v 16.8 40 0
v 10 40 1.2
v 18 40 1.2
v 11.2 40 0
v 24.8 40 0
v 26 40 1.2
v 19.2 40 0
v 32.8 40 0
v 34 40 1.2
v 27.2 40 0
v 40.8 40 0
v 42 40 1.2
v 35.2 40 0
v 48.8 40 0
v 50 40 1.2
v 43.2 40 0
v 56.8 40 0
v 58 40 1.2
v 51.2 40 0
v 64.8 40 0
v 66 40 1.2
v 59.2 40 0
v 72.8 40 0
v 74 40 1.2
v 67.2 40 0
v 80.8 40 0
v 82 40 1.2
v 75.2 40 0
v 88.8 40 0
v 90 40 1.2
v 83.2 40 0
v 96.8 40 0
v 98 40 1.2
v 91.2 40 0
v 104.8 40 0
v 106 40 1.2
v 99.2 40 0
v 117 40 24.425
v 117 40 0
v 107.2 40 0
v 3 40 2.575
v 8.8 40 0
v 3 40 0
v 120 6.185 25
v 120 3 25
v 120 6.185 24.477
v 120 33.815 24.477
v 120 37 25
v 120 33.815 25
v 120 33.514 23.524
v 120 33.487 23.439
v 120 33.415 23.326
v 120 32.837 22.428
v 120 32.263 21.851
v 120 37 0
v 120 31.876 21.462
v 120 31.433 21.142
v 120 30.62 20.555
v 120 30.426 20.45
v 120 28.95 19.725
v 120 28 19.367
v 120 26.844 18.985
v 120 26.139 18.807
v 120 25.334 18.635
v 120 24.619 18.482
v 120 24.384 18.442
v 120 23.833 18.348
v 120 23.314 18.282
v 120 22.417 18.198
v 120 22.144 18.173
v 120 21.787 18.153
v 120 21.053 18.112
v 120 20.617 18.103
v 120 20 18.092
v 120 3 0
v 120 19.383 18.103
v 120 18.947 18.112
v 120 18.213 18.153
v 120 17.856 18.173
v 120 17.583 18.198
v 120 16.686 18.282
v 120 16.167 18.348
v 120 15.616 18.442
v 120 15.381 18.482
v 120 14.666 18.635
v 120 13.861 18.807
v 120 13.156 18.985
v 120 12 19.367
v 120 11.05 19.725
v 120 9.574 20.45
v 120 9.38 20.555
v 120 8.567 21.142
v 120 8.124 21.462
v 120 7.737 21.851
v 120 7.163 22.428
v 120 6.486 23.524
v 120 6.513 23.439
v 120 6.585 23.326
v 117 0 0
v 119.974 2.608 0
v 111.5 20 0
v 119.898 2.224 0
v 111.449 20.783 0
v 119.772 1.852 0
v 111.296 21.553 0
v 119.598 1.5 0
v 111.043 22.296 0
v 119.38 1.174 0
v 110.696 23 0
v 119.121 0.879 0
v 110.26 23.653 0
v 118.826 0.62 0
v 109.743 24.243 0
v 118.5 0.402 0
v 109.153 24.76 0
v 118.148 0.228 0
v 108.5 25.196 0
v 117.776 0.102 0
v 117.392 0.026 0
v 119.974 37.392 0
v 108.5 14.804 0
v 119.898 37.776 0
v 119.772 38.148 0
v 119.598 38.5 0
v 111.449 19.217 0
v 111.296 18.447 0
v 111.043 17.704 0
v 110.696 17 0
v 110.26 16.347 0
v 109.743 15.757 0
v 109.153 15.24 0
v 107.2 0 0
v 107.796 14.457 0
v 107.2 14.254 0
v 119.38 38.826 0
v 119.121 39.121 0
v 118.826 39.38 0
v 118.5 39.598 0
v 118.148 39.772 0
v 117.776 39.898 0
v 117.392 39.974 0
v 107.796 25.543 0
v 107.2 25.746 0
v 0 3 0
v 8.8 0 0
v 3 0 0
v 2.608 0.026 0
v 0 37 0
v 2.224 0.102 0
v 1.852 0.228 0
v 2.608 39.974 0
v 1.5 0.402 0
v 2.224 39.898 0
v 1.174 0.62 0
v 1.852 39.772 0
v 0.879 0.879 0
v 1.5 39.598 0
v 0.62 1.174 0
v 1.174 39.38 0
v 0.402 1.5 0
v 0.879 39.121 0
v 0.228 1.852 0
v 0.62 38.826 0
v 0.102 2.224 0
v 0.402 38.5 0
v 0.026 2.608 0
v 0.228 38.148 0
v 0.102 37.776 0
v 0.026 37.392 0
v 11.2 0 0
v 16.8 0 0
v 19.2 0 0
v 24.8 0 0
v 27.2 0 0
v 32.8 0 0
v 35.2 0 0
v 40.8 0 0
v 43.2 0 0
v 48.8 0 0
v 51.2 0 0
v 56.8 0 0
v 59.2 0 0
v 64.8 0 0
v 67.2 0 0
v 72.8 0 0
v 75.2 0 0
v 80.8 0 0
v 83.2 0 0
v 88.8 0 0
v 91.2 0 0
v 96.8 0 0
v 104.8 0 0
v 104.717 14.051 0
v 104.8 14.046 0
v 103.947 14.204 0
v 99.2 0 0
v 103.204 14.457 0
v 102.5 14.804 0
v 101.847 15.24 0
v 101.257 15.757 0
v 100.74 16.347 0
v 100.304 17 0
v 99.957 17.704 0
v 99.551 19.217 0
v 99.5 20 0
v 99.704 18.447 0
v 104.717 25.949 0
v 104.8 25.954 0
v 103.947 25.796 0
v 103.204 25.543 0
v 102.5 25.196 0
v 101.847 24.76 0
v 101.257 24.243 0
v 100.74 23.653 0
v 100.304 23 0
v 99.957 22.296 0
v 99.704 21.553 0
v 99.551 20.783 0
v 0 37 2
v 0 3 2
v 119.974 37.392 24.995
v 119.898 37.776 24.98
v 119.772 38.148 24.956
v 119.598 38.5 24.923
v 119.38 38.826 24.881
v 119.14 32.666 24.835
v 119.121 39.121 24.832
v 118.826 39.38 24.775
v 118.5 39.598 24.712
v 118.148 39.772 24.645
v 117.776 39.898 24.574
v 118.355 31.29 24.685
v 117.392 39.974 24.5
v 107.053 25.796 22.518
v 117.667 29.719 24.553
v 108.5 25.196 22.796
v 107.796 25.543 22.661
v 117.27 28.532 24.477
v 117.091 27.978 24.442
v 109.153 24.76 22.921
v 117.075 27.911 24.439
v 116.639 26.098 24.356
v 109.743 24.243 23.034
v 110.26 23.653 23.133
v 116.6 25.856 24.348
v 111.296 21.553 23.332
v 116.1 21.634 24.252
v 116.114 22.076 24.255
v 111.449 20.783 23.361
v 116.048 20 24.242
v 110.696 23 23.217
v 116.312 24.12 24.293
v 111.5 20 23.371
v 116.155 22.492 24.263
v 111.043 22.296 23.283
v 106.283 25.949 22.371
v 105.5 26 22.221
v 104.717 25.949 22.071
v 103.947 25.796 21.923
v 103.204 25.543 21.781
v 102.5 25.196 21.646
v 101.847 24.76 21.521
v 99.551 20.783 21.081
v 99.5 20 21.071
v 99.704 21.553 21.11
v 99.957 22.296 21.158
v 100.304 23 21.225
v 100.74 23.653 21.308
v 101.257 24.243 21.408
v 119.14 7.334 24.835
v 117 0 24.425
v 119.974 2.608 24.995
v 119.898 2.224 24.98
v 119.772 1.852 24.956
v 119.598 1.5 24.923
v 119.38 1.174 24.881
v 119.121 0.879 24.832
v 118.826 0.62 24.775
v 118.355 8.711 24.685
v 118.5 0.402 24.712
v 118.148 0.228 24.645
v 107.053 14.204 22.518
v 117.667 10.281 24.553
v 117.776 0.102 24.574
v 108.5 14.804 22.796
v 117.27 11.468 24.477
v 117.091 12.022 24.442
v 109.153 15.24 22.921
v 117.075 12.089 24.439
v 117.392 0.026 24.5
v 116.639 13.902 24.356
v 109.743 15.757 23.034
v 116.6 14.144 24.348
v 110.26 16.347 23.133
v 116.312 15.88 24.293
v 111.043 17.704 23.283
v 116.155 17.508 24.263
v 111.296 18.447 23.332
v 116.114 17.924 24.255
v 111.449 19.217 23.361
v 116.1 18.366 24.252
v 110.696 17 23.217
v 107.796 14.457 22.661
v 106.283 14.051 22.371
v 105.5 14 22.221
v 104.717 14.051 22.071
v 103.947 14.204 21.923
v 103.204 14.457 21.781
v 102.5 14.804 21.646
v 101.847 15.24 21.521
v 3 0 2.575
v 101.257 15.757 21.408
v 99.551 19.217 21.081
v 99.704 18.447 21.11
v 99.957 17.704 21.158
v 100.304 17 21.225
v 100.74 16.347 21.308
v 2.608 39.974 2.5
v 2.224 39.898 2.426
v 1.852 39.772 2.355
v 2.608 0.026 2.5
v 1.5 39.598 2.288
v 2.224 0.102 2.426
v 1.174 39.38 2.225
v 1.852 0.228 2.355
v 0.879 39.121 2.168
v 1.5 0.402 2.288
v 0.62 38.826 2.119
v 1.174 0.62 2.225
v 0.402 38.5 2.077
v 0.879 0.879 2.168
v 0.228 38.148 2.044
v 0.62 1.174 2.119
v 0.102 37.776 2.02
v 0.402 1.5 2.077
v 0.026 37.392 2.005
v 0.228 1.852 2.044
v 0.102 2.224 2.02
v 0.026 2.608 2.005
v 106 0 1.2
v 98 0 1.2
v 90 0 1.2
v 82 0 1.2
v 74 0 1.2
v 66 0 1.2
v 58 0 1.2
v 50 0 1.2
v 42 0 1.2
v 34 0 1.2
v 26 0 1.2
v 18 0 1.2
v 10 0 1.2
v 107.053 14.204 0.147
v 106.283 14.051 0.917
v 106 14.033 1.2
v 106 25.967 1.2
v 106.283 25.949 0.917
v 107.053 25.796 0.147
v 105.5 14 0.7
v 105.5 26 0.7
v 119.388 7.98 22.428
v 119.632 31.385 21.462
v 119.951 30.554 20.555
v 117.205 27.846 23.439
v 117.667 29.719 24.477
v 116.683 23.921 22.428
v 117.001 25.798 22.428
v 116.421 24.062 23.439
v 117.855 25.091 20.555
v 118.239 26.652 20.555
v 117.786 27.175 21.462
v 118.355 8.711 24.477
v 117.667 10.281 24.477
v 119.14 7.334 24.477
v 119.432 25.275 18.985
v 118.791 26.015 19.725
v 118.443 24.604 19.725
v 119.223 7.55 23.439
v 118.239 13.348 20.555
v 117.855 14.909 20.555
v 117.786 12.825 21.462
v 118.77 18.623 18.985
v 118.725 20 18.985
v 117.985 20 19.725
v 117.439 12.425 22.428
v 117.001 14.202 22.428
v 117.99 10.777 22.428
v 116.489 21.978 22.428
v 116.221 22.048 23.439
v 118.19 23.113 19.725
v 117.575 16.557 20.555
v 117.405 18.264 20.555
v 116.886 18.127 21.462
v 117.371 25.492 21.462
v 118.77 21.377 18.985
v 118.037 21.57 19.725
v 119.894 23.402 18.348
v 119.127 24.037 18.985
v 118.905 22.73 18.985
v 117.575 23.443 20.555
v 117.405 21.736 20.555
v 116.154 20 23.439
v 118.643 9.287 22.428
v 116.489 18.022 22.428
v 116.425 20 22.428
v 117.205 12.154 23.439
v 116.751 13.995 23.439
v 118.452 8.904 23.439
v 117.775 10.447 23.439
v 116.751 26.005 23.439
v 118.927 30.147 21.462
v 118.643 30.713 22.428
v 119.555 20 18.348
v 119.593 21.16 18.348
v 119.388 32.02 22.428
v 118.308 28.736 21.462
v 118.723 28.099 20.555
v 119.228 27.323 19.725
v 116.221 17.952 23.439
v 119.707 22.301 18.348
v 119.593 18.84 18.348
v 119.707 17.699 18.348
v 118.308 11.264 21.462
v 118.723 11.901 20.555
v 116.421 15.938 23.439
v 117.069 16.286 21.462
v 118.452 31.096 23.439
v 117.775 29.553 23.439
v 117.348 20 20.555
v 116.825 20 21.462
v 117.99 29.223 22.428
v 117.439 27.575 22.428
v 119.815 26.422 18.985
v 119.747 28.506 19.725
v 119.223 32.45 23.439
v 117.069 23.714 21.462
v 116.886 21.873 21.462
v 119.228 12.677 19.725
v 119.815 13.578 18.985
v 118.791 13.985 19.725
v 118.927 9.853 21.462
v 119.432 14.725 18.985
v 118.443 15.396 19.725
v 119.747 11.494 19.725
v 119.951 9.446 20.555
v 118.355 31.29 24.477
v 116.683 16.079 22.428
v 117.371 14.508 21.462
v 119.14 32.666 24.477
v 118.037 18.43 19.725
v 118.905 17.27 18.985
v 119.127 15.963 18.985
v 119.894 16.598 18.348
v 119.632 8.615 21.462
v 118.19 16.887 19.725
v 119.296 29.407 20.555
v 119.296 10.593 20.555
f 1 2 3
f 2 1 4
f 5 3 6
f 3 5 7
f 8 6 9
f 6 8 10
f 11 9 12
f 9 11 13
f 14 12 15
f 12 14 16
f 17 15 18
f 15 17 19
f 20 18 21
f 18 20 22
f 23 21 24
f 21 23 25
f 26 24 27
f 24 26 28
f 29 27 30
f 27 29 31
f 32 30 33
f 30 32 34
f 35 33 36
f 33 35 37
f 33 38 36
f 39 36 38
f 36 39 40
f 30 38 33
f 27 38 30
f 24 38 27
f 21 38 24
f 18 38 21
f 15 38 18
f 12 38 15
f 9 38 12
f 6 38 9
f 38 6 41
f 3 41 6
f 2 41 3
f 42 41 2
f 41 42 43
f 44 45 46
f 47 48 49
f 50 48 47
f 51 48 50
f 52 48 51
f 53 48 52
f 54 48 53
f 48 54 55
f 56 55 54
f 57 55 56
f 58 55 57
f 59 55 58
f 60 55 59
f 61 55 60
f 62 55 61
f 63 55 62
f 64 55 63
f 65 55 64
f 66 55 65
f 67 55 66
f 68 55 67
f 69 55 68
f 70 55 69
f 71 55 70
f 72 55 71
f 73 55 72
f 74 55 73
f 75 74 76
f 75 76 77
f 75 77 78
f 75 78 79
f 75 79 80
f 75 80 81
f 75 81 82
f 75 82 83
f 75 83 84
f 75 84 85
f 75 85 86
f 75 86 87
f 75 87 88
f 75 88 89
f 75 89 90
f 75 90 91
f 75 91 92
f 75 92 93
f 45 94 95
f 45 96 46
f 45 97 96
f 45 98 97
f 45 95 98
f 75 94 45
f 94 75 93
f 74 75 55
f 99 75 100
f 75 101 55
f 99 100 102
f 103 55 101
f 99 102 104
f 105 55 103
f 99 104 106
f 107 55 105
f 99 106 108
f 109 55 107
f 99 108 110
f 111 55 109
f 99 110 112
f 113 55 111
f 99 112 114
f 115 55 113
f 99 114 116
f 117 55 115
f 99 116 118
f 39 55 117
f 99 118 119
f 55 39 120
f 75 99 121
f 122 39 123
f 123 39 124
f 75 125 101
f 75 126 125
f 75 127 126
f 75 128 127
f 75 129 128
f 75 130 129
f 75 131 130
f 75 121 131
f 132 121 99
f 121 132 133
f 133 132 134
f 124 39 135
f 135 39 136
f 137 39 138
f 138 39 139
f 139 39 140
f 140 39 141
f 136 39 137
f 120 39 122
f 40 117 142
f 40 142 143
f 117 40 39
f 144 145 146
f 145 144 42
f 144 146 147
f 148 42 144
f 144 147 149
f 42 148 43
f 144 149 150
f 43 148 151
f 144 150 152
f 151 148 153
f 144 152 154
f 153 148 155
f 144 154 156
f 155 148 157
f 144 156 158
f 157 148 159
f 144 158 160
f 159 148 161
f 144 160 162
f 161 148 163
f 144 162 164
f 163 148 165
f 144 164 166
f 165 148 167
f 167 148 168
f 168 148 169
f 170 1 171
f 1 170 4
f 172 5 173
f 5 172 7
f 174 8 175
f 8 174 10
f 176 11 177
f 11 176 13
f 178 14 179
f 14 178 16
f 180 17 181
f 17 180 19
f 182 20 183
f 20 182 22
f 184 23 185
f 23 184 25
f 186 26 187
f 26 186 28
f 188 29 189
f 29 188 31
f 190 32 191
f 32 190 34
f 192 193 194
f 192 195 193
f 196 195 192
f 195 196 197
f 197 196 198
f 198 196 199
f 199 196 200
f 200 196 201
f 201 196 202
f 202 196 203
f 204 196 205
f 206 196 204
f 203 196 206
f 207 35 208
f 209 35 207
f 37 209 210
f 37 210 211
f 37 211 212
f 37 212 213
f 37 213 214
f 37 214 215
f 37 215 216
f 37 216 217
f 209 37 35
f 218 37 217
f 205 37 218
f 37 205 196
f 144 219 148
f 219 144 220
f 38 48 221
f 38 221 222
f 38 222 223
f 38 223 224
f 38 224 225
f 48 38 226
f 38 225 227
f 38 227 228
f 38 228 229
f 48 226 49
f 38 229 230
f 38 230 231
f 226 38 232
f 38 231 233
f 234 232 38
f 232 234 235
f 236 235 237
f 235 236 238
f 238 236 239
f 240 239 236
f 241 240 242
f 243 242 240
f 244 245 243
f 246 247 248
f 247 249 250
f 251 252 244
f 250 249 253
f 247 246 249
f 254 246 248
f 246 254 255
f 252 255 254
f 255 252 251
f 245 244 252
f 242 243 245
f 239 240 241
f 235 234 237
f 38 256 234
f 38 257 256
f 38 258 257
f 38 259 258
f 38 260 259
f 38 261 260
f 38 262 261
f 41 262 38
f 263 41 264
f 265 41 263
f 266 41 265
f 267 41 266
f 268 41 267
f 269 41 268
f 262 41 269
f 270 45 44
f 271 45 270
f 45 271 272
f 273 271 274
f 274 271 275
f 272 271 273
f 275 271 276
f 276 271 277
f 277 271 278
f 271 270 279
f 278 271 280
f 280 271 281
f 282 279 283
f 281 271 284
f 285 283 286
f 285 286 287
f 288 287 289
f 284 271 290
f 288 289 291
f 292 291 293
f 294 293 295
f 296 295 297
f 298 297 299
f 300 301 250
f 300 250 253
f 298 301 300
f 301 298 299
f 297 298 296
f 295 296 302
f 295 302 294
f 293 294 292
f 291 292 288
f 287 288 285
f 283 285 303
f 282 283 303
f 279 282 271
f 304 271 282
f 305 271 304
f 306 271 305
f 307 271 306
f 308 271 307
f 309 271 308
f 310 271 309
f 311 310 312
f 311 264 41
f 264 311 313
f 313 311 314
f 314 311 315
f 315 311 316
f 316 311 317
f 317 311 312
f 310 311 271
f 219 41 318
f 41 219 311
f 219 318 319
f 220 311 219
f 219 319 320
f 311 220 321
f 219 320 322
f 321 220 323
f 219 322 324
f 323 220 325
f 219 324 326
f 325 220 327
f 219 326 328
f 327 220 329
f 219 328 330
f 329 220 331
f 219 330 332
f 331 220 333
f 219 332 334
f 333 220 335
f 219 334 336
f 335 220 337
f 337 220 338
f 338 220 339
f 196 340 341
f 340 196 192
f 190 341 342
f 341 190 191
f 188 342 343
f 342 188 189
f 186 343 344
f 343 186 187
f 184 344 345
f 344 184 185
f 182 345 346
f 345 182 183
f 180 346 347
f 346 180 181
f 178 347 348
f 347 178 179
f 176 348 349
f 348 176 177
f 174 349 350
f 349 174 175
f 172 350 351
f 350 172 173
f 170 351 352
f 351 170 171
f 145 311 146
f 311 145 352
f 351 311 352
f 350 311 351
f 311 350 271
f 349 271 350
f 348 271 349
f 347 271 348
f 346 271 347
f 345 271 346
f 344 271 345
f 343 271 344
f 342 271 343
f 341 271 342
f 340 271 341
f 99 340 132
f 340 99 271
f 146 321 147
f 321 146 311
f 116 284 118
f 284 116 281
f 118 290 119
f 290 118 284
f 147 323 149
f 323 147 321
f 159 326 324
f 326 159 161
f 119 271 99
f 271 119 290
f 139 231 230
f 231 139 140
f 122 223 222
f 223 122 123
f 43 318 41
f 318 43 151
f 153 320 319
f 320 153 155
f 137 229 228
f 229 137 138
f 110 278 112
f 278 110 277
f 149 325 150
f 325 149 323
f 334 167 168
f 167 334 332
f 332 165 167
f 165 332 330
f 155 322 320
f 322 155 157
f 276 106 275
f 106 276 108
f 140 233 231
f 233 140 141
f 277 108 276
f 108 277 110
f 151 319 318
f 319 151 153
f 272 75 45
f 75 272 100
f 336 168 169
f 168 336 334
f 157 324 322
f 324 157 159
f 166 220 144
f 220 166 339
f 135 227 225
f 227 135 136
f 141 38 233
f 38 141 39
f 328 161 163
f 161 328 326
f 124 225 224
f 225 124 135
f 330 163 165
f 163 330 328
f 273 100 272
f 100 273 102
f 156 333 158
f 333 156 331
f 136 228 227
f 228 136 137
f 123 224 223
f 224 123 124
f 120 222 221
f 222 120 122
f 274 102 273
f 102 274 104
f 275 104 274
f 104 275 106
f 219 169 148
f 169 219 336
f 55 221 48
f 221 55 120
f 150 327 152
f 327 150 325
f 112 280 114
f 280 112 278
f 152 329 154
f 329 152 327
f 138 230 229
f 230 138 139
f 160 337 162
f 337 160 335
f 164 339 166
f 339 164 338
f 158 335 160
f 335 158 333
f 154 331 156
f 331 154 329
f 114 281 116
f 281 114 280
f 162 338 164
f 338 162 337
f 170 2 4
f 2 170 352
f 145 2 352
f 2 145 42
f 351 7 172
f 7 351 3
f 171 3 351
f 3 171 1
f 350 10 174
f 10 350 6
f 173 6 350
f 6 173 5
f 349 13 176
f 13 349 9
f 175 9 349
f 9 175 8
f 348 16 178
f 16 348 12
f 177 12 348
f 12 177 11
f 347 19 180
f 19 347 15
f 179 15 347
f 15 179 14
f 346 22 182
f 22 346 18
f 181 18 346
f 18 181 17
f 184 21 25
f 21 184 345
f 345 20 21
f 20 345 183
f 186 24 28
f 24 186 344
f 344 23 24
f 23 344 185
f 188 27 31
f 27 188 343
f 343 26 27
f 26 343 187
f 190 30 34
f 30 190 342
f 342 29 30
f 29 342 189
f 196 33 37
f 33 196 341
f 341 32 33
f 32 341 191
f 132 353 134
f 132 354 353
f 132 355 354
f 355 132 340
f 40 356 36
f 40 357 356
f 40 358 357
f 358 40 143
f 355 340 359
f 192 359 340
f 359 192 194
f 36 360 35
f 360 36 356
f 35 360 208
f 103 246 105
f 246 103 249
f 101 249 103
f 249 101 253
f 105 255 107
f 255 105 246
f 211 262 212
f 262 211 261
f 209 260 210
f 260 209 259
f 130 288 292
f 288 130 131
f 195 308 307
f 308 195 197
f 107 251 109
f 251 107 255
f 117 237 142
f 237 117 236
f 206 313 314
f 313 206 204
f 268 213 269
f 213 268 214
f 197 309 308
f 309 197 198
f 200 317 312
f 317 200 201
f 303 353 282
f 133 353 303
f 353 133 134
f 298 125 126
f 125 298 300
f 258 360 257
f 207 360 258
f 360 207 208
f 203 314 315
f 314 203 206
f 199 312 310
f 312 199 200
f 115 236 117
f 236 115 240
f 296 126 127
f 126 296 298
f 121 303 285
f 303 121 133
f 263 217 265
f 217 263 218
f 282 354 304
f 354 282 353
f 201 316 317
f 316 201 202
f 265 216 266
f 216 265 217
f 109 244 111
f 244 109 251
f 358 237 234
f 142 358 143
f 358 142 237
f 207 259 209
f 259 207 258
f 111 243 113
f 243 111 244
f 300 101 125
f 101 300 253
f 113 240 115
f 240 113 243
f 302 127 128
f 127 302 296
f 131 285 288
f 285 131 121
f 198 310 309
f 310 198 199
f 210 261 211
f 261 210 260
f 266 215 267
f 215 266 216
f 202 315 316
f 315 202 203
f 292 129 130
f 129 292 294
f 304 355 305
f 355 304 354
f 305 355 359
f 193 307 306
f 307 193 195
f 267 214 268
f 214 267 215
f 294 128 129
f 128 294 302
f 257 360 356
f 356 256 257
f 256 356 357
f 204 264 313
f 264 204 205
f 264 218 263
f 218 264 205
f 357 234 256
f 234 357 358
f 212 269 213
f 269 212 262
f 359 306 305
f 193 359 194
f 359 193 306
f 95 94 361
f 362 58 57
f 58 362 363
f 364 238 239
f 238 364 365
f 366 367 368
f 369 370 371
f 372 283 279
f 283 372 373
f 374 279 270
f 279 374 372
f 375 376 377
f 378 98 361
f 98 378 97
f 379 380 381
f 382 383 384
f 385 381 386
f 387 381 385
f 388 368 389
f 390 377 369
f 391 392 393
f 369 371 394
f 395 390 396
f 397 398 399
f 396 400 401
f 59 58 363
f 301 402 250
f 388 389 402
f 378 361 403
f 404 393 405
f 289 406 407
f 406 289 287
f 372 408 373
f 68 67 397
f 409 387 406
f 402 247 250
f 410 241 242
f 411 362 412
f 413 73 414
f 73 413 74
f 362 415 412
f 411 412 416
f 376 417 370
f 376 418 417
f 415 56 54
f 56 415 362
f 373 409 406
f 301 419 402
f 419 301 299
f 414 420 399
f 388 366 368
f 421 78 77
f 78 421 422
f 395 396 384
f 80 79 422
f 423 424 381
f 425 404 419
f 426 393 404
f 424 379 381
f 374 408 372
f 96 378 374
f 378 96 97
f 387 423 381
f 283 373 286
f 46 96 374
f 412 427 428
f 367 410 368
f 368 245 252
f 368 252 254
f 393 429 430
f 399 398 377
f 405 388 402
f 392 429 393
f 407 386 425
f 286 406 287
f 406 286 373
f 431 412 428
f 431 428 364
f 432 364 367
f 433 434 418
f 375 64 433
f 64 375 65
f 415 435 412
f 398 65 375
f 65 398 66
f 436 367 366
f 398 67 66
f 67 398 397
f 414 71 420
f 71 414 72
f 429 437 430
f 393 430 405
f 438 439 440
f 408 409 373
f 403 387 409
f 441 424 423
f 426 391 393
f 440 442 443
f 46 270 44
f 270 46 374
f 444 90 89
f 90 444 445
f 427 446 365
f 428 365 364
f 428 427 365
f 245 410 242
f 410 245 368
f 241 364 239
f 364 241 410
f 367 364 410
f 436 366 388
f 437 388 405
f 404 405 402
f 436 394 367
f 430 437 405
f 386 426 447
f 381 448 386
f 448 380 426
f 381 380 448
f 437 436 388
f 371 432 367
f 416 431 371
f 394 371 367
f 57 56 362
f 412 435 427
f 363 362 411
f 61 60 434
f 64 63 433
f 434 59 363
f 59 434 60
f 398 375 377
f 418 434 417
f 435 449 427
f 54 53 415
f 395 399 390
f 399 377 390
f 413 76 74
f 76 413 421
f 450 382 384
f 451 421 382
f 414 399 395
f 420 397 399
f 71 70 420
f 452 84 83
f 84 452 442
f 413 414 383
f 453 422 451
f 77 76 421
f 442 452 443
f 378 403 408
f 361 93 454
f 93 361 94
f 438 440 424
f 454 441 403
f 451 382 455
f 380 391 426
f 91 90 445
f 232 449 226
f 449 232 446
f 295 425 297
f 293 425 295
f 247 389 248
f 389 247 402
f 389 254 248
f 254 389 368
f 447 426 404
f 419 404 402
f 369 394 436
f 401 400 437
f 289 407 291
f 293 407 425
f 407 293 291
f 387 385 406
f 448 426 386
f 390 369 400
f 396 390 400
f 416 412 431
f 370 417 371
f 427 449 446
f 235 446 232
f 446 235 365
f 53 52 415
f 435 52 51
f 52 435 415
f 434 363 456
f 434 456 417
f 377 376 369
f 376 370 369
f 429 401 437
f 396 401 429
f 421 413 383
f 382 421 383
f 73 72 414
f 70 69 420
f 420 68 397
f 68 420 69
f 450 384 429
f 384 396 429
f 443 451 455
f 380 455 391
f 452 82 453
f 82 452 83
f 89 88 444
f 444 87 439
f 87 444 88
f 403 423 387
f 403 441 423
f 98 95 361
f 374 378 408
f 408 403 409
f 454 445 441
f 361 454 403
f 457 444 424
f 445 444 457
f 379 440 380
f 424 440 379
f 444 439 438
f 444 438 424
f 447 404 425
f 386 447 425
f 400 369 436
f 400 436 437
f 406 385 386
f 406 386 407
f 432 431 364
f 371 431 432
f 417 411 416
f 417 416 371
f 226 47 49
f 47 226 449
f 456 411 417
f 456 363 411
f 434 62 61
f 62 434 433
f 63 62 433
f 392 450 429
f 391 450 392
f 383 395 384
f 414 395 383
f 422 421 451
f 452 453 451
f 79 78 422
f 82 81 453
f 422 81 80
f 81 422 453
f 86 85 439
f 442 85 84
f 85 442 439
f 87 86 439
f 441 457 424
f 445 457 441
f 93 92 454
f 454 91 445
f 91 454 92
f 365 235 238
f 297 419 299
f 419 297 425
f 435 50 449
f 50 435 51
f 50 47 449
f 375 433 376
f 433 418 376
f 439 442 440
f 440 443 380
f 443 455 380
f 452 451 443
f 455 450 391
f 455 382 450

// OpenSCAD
// Door Stop Wedge — keeps a door open (slide under the door edge).
// Grip grooves on the bottom stop it sliding on hard floors.
// Print on its flat bottom (as rendered). PETG or TPU grips best.

/* [Size] */
// Length (mm)
length = 120;           // [60:1:200]
// Width (mm)
width = 40;             // [20:1:80]
// Height at the tall end (mm). Measure the gap under your door + a bit.
height = 25;            // [8:1:60]
// Height at the thin tip (mm)
tip_h = 2;              // [1:0.5:6]

/* [Extras] */
// Grip grooves across the bottom
grooves = true;
// Hole at the tall end for hanging on a hook
hang_hole = true;

/* [Hidden] */
$fn = 48;
r = 3;

module side_profile() {
    polygon([[0, 0], [length, 0], [length, height], [0, tip_h]]);
}

difference() {
    // rounded vertical edges
    intersection() {
        rotate([90, 0, 0]) translate([0, 0, -width])
            linear_extrude(width) side_profile();
        linear_extrude(height + 1)
            offset(r = r) offset(delta = -r) square([length, width]);
    }
    if (grooves)
        for (x = [10 : 8 : length - 10])
            translate([x, -1, 0]) rotate([-90, 0, 0])
                cylinder(r = 1.2, h = width + 2, $fn = 4);
    if (hang_hole)
        translate([length - height / 2 - 2, width / 2, -1])
            cylinder(d = min(12, width / 3), h = height + 2);
    // finger notch at the tall end to pull it out
    translate([length + 4, width / 2, height]) scale([1, 2, 1]) sphere(r = 8);
}
